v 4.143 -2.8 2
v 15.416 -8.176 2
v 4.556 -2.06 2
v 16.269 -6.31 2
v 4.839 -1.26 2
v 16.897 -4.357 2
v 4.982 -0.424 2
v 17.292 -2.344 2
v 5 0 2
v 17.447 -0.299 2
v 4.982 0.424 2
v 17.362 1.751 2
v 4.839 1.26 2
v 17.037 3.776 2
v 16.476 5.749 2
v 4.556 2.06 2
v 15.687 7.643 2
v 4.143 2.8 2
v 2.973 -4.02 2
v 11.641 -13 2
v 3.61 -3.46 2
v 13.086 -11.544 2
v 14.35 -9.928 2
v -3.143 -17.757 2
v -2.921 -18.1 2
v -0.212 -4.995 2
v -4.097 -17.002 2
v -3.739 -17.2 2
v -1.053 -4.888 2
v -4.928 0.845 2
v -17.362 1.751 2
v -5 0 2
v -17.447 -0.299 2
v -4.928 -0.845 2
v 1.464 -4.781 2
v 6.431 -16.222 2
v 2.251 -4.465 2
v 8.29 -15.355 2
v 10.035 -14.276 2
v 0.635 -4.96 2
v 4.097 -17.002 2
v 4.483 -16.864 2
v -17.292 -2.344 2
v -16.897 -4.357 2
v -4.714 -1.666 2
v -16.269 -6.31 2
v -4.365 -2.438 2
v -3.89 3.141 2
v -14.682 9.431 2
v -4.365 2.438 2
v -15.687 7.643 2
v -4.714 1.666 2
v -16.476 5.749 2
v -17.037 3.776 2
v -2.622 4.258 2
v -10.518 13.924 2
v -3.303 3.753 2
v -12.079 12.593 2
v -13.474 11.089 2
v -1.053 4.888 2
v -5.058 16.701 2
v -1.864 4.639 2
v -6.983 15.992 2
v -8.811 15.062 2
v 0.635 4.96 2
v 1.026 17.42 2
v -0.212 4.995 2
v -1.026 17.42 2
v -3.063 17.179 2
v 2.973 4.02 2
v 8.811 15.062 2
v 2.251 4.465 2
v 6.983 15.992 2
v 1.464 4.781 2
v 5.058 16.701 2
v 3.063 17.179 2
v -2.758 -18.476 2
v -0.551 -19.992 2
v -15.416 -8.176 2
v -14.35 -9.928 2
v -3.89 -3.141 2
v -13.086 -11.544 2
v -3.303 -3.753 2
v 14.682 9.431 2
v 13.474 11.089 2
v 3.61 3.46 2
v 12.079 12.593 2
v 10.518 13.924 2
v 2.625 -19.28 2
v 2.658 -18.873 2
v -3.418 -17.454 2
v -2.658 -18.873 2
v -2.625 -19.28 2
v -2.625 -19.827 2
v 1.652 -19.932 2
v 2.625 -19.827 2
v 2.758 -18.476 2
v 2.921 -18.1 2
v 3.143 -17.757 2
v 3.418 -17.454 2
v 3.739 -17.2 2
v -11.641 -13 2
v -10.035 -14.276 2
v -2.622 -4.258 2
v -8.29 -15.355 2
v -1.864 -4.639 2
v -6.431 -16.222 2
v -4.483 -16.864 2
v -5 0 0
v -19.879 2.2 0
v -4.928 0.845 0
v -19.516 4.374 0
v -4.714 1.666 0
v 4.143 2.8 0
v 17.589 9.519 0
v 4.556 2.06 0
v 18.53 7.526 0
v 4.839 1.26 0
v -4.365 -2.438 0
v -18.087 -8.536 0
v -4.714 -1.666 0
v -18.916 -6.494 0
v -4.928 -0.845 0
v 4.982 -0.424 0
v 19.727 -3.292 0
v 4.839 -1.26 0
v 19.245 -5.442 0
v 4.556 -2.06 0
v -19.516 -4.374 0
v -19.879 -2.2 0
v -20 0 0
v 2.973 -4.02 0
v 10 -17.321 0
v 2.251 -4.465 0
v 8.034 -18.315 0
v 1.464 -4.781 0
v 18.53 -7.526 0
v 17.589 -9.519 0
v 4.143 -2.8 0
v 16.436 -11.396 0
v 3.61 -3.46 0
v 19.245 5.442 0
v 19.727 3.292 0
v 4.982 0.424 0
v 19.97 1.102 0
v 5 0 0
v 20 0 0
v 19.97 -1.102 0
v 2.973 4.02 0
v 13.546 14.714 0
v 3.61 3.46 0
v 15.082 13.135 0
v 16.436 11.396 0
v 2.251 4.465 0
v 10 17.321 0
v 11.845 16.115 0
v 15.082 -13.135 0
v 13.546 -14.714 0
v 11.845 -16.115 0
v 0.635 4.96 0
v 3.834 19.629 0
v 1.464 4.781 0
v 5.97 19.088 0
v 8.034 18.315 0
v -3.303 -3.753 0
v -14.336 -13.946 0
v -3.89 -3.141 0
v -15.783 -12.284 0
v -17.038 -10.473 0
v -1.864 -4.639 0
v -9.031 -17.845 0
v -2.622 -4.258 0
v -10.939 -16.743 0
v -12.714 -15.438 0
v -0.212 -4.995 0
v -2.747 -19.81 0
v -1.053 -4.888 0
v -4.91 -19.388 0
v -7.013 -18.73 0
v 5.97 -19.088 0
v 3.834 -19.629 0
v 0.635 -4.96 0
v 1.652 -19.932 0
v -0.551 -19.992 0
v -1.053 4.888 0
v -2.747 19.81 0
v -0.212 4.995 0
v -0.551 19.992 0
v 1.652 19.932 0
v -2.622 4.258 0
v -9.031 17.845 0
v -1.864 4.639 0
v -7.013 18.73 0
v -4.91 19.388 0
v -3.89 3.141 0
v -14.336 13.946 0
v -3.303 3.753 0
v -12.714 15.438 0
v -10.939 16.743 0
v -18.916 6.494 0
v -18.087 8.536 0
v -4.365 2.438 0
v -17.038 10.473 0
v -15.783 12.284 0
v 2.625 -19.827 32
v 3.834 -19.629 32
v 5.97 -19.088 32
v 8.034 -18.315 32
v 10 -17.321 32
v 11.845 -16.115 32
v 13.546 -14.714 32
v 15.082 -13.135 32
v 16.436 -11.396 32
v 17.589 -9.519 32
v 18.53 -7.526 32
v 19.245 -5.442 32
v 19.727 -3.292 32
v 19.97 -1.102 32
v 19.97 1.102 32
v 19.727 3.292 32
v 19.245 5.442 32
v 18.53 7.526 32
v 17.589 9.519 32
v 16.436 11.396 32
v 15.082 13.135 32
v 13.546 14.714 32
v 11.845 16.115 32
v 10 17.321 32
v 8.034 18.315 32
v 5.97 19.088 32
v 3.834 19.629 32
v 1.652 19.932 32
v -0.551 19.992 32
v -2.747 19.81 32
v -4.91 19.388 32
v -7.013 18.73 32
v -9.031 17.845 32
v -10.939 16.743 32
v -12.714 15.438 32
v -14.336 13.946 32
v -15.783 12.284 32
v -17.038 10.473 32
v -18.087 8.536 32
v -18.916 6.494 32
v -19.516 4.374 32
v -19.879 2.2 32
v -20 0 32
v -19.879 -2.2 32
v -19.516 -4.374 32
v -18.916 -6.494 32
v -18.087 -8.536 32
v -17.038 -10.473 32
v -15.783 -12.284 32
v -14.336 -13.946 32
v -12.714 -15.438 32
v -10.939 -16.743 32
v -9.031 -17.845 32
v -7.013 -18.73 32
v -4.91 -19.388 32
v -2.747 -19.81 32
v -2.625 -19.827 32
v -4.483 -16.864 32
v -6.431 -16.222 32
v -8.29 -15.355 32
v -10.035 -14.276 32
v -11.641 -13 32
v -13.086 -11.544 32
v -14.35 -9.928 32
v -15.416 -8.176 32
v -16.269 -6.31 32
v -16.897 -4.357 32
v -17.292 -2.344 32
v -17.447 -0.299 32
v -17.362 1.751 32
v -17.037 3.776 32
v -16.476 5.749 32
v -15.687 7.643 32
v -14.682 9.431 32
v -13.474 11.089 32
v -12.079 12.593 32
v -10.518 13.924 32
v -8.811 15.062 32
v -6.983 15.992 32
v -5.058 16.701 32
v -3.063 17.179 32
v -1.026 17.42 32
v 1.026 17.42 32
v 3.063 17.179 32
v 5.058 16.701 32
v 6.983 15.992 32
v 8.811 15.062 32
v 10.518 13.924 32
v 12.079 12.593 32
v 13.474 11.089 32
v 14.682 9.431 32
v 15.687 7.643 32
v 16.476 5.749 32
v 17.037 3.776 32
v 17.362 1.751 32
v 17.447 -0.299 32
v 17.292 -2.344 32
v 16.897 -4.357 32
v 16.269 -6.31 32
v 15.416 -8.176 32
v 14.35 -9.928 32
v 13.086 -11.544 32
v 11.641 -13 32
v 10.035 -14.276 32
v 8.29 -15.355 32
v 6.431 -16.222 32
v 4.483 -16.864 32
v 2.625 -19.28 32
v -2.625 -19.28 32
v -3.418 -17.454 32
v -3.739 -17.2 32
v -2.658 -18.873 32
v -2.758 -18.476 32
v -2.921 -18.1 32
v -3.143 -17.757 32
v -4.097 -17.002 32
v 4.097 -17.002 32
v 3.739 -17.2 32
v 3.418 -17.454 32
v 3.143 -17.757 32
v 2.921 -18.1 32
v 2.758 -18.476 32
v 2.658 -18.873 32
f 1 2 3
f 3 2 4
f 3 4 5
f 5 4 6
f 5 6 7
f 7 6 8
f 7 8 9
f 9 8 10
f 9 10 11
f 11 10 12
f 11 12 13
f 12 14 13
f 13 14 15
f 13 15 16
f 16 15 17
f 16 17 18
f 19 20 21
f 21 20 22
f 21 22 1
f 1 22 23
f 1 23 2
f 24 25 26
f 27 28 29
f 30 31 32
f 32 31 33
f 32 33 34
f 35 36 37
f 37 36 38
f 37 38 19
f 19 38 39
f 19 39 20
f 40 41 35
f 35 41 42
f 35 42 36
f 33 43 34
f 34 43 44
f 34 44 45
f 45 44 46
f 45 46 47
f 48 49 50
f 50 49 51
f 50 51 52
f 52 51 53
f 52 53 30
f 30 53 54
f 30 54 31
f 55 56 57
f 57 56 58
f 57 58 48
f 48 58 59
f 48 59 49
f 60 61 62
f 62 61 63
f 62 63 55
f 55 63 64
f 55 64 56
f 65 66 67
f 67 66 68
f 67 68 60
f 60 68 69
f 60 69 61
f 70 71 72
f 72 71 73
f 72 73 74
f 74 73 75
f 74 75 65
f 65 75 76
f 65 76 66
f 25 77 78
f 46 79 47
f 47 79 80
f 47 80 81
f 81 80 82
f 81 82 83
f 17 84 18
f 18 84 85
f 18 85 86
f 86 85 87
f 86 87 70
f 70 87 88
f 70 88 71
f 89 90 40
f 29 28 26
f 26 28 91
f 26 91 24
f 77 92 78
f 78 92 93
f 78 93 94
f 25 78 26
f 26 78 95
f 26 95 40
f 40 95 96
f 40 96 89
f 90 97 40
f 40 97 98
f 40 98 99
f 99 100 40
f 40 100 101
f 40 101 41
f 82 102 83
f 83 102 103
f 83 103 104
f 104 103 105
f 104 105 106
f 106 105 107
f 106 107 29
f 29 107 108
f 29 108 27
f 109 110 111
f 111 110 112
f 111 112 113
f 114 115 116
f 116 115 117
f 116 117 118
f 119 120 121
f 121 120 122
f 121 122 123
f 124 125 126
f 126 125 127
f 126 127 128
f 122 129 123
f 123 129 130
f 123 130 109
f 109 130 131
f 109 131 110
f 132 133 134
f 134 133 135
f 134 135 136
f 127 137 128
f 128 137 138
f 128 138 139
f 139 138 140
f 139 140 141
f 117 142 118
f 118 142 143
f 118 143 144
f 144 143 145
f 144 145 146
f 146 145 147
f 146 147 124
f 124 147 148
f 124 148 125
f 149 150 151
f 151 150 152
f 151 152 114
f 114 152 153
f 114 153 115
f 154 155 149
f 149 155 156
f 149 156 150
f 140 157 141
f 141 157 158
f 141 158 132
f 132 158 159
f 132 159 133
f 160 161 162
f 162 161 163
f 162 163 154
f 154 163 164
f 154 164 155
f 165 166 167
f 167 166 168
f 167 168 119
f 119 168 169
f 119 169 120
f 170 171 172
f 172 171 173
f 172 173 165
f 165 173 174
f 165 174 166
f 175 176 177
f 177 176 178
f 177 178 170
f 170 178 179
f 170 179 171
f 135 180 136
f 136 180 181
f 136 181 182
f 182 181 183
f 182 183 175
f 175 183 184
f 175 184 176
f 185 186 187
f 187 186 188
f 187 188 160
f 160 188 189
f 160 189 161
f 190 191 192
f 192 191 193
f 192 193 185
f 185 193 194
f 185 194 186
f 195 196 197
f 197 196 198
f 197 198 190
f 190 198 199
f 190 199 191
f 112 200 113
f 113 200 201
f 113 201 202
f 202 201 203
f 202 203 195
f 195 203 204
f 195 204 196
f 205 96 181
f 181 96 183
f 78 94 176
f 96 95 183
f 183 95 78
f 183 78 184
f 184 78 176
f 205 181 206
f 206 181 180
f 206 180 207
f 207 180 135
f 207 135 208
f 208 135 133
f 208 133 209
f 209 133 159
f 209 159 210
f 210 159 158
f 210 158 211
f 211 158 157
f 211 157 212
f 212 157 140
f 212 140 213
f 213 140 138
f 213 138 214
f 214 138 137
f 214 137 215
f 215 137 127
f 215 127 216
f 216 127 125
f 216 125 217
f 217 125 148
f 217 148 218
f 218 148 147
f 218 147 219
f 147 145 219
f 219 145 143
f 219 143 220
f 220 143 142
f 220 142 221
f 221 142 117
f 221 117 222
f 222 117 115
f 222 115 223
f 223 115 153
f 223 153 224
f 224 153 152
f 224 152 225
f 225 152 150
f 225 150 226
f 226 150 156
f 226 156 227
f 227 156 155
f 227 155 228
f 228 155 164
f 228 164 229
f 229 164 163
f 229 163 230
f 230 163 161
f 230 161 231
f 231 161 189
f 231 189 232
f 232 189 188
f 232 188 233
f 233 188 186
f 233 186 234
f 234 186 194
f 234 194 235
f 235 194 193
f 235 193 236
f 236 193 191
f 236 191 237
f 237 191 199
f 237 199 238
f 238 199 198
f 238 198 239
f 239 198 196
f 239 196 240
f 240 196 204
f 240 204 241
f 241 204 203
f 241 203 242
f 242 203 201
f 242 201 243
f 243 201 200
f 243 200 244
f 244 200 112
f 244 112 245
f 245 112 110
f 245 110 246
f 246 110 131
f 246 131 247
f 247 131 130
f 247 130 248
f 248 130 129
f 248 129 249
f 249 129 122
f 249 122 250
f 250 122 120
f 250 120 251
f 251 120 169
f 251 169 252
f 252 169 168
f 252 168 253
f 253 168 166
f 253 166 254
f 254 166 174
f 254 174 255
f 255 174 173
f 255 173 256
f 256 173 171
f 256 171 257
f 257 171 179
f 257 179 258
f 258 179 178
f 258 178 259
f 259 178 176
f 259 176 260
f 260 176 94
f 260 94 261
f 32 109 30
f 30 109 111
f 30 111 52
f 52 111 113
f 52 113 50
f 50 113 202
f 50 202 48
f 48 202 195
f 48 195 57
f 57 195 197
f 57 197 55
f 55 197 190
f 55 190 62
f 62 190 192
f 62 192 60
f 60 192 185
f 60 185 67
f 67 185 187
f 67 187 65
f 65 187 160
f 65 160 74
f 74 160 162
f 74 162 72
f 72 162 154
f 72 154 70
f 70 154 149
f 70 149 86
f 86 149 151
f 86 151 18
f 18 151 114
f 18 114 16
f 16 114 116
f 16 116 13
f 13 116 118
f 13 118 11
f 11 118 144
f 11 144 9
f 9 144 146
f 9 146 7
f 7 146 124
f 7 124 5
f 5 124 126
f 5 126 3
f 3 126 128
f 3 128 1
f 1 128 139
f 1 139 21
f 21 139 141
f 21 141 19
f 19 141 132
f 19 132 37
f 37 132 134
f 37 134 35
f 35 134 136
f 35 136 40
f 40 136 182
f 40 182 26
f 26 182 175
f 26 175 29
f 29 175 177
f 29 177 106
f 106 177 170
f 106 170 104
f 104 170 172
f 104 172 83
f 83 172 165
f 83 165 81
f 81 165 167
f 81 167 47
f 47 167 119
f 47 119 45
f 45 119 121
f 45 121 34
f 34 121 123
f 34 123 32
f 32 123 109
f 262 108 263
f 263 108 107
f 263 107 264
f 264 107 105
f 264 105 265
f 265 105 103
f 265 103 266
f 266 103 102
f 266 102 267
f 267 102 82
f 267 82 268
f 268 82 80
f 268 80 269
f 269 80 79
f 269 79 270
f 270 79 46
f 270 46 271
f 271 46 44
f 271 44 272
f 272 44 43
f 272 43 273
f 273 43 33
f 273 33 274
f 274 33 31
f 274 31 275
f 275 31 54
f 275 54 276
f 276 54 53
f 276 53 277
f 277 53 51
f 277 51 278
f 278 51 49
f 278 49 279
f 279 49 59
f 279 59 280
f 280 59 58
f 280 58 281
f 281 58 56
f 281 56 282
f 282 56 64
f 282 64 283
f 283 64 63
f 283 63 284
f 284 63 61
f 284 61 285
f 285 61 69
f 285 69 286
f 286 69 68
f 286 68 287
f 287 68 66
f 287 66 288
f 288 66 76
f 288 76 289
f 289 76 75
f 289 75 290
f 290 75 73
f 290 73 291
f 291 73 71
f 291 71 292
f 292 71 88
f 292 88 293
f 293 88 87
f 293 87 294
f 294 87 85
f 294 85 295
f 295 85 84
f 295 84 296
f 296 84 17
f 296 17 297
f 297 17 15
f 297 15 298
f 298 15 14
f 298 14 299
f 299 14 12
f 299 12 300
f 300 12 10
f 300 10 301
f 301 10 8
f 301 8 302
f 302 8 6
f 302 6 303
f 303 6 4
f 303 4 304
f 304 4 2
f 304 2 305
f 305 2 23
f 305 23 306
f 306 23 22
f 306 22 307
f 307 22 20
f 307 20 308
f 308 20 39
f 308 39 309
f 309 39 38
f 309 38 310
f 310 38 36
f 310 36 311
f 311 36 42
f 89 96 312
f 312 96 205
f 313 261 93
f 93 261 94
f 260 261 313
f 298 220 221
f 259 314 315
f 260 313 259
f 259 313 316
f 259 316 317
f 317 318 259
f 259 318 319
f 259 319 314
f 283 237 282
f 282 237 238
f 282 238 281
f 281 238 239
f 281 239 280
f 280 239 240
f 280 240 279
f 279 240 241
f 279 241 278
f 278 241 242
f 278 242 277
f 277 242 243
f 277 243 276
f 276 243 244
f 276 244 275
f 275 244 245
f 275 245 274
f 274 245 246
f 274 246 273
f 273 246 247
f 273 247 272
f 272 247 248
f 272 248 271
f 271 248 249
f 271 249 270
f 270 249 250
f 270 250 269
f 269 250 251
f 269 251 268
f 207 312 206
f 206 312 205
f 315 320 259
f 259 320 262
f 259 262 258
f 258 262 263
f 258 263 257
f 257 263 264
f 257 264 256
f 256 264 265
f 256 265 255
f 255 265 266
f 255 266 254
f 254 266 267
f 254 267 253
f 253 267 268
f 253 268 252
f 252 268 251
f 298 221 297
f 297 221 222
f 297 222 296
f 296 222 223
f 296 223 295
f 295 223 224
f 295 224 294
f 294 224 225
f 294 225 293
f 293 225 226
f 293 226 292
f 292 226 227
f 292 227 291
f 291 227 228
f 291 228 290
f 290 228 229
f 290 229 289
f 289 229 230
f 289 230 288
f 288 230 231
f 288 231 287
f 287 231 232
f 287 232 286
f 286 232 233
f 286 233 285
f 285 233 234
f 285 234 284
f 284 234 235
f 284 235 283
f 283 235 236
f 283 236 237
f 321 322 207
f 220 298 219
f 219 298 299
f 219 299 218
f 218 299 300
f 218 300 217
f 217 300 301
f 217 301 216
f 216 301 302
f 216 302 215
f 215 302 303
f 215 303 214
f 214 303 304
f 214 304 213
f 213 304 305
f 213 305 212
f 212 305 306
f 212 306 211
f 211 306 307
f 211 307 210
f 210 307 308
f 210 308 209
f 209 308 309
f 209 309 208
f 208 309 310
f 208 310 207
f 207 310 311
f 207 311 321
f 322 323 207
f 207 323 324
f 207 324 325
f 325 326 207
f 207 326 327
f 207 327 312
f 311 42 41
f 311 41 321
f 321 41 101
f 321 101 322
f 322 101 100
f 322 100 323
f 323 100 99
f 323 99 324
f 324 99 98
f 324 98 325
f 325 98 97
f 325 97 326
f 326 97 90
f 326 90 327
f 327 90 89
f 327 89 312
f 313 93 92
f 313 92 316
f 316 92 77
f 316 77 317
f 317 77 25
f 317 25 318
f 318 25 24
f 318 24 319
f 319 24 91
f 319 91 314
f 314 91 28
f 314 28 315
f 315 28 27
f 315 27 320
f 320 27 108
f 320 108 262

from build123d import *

# Parameters (mm, degrees)
SKETCH1_R           = 20
SKETCH1_R_2         = 5
BOSS_EXTRUDE1_DEPTH = 2
BOSS_EXTRUDE2_DEPTH = 30
FILLET1_R           = 2.5


with BuildPart() as part:
    # Sketch1 → Boss-Extrude1 (new body)
    with BuildSketch(Plane.XY):
        Circle(SKETCH1_R)
        Circle(SKETCH1_R_2, mode=Mode.SUBTRACT)
    extrude(amount=BOSS_EXTRUDE1_DEPTH)

    # Sketch2 → Boss-Extrude2 (add)
    with BuildSketch(Plane.XY.offset(2)):
        with BuildLine():
            Line((-2.625, -19.826986029), (-2.625, -17.2514311))
            ThreePointArc((-2.625, -17.2514311), (-11.373131715, 13.234590096), (17.45, 0))
            ThreePointArc((17.45, 0), (13.234590096, -11.373131715), (2.625, -17.2514311))
            Line((2.625, -17.2514311), (2.625, -19.826986029))
            ThreePointArc((2.625, -19.826986029), (15.041608956, -13.181426326), (20, 0))
            ThreePointArc((20, 0), (-13.181426326, 15.041608956), (-2.625, -19.826986029))
        make_face()
    extrude(amount=BOSS_EXTRUDE2_DEPTH)

    # Fillet1
    fillet1_edges = [part.edges().sort_by_distance(p)[0] for p in [
        (-2.625, -17.2514311, 17),
        (2.625, -17.2514311, 17),
    ]]
    fillet(fillet1_edges, radius=FILLET1_R)


solid = part.part
